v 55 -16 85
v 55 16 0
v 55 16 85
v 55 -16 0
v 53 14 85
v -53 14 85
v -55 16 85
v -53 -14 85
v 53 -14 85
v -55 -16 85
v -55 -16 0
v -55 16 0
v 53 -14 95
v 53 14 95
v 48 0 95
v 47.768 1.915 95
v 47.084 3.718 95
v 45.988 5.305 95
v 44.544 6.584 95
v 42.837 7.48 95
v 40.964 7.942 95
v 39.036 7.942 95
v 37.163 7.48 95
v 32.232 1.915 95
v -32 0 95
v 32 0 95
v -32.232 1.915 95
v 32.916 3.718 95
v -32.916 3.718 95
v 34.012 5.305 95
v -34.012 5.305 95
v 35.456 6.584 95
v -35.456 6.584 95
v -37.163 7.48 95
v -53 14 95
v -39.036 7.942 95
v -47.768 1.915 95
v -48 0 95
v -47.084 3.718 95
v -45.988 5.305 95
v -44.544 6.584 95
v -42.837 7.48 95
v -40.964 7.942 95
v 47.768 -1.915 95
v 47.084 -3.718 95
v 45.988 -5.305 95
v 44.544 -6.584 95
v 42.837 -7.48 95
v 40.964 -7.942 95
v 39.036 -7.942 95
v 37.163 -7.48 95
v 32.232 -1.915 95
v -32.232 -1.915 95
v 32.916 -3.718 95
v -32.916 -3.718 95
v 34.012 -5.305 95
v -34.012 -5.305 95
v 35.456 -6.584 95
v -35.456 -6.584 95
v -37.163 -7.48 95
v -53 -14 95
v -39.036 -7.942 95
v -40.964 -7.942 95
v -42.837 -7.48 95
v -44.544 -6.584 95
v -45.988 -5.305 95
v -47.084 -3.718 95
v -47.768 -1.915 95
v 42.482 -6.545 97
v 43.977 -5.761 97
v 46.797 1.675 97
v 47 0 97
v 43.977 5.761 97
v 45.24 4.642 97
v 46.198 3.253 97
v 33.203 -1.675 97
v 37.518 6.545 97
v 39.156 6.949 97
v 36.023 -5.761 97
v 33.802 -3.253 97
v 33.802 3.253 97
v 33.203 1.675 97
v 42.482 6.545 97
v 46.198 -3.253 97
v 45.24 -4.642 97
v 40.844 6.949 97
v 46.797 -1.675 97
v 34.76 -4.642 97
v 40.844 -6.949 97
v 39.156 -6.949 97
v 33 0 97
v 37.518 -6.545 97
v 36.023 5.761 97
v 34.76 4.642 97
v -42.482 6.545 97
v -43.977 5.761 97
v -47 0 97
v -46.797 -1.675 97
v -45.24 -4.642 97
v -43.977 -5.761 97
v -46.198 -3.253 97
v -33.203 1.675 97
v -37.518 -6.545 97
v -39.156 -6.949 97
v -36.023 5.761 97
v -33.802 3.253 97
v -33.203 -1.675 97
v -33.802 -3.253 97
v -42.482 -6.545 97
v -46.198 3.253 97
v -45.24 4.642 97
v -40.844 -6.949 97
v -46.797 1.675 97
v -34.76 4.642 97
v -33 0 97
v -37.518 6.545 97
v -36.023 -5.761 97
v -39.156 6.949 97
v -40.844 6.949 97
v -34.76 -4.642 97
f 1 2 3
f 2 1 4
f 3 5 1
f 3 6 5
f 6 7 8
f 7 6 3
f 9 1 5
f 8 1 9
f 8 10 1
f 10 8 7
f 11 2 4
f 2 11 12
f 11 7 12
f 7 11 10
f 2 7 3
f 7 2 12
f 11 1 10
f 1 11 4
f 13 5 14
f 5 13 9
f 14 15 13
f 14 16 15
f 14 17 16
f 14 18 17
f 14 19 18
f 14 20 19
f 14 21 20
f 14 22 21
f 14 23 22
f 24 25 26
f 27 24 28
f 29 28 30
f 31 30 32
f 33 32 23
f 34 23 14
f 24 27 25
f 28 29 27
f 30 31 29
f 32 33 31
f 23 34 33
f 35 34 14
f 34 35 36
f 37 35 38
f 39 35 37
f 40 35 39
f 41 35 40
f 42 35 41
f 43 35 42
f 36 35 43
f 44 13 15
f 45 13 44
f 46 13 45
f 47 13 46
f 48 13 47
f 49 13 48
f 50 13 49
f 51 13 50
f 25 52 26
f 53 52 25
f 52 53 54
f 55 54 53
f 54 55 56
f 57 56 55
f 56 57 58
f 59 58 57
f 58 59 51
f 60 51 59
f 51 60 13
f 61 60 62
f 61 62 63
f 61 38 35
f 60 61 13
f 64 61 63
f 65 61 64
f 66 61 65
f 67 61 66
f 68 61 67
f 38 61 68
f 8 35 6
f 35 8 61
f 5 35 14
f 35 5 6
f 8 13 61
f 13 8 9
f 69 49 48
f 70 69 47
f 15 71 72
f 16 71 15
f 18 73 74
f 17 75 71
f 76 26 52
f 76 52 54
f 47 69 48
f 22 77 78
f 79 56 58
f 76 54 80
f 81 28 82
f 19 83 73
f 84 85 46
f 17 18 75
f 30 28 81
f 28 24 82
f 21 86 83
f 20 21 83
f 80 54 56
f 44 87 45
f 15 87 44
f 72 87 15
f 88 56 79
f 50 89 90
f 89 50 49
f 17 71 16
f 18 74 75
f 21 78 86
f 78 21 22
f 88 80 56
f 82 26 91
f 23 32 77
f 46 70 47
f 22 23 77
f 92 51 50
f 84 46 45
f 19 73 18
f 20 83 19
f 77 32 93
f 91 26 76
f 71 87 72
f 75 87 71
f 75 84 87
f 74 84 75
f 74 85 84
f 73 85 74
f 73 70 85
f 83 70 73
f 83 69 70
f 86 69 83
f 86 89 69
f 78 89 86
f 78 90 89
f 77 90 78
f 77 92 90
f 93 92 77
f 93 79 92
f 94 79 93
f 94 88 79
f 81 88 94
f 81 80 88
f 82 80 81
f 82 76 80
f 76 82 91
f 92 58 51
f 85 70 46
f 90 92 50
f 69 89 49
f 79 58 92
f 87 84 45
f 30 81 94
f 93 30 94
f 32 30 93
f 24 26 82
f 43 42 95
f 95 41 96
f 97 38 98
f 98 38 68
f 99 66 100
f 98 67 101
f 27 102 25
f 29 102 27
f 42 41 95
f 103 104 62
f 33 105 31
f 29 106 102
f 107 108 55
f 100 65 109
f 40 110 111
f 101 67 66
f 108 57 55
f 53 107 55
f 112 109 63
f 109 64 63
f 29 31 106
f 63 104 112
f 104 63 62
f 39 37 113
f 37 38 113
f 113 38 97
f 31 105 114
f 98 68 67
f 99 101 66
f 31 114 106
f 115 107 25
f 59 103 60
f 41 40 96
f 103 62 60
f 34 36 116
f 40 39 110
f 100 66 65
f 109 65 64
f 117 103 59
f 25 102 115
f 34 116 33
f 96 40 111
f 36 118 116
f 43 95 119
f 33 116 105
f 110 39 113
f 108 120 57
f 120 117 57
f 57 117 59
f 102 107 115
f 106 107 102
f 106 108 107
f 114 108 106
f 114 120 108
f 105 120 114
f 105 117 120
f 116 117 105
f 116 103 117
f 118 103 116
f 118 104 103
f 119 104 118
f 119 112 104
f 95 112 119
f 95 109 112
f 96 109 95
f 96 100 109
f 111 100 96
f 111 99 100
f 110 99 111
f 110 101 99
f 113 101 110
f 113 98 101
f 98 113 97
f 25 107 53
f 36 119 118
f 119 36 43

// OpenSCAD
// file: common.scad
/*
  author: Christopher O'Brien  <obriencj@gmail.com>
  license: GPL v3
*/


module duplicate(move_v=[0,0,0], rotate_v=[0,0,0]) {
     children();
     translate(move_v) {
          rotate(rotate_v) {
               children();
          };
     };
}


module double_sided(y_axis, z_thickness) {
     translate([0, 0, z_thickness / 2]) {
          duplicate(move_v=[0, y_axis, 0],
                    rotate_v=[180, 0, 0]) {
               children();
          };
     };
}


module rounded_plate(width, height, thickness, turn_r=5.1, $fn=50) {
     turn_d = turn_r * 2;

     translate([turn_r, turn_r, 0]) {
          linear_extrude(thickness) {
               minkowski() {
                    square([width - turn_d, height - turn_d]);
                    circle(turn_r);
               };
          };
     };
}


module words(txt_v, size=6, thick=5, spacing=0,
             font="Liberation Sans", style="Bold",
             halign="center", valign="center", $fn=50) {

     fontstyle = str(font, ":style=", style);

     lspacing = (spacing == 0)? size + 2: spacing;

     linear_extrude(height=thick) {
          for(i = [0 : len(txt_v) - 1]) {
               translate([0, i * -lspacing, 0])
                    text(txt_v[i], size=size, font=fontstyle,
                         halign=halign, valign=valign);
          };
     };
}


// The end.
// main file
/*
  author: Christopher O'Brien  <obriencj@gmail.com>
  license: GPL v.3
*/


use <common.scad>;


module AG_401() {
     // rough dimensions of an antigravity 401 (4-cell) battery
     // Length = 110mm, Width = 32mm, Height = 95mm

     bat_length = 110;
     bat_width = 32;
     bat_height = 95;

     // the AG-401 has a top portion which is slightly smaller than
     // the main body of the battery.

     // todo: these numbers are just estimates
     cap_delta = 2;
     cap_height = 10;

     color("Gray") {
	  translate([bat_length / -2, bat_width / -2, 0]) {
	       cube([bat_length, bat_width, bat_height - cap_height]);

	       translate([cap_delta, cap_delta, bat_height - cap_height]) {
		    cube([bat_length - (cap_delta * 2),
			  bat_width - (cap_delta * 2),
			  cap_height]);
	       };
	  };
     };

     // todo: the terminal positions and sizes are estimations
     color("Gold") {
	  duplicate(rotate_v=[0, 0, 180]) {
	       translate([40, 0, bat_height])
		    cylinder(2, 8, 7);
	  };
     };
}


AG_401();


// The end.
